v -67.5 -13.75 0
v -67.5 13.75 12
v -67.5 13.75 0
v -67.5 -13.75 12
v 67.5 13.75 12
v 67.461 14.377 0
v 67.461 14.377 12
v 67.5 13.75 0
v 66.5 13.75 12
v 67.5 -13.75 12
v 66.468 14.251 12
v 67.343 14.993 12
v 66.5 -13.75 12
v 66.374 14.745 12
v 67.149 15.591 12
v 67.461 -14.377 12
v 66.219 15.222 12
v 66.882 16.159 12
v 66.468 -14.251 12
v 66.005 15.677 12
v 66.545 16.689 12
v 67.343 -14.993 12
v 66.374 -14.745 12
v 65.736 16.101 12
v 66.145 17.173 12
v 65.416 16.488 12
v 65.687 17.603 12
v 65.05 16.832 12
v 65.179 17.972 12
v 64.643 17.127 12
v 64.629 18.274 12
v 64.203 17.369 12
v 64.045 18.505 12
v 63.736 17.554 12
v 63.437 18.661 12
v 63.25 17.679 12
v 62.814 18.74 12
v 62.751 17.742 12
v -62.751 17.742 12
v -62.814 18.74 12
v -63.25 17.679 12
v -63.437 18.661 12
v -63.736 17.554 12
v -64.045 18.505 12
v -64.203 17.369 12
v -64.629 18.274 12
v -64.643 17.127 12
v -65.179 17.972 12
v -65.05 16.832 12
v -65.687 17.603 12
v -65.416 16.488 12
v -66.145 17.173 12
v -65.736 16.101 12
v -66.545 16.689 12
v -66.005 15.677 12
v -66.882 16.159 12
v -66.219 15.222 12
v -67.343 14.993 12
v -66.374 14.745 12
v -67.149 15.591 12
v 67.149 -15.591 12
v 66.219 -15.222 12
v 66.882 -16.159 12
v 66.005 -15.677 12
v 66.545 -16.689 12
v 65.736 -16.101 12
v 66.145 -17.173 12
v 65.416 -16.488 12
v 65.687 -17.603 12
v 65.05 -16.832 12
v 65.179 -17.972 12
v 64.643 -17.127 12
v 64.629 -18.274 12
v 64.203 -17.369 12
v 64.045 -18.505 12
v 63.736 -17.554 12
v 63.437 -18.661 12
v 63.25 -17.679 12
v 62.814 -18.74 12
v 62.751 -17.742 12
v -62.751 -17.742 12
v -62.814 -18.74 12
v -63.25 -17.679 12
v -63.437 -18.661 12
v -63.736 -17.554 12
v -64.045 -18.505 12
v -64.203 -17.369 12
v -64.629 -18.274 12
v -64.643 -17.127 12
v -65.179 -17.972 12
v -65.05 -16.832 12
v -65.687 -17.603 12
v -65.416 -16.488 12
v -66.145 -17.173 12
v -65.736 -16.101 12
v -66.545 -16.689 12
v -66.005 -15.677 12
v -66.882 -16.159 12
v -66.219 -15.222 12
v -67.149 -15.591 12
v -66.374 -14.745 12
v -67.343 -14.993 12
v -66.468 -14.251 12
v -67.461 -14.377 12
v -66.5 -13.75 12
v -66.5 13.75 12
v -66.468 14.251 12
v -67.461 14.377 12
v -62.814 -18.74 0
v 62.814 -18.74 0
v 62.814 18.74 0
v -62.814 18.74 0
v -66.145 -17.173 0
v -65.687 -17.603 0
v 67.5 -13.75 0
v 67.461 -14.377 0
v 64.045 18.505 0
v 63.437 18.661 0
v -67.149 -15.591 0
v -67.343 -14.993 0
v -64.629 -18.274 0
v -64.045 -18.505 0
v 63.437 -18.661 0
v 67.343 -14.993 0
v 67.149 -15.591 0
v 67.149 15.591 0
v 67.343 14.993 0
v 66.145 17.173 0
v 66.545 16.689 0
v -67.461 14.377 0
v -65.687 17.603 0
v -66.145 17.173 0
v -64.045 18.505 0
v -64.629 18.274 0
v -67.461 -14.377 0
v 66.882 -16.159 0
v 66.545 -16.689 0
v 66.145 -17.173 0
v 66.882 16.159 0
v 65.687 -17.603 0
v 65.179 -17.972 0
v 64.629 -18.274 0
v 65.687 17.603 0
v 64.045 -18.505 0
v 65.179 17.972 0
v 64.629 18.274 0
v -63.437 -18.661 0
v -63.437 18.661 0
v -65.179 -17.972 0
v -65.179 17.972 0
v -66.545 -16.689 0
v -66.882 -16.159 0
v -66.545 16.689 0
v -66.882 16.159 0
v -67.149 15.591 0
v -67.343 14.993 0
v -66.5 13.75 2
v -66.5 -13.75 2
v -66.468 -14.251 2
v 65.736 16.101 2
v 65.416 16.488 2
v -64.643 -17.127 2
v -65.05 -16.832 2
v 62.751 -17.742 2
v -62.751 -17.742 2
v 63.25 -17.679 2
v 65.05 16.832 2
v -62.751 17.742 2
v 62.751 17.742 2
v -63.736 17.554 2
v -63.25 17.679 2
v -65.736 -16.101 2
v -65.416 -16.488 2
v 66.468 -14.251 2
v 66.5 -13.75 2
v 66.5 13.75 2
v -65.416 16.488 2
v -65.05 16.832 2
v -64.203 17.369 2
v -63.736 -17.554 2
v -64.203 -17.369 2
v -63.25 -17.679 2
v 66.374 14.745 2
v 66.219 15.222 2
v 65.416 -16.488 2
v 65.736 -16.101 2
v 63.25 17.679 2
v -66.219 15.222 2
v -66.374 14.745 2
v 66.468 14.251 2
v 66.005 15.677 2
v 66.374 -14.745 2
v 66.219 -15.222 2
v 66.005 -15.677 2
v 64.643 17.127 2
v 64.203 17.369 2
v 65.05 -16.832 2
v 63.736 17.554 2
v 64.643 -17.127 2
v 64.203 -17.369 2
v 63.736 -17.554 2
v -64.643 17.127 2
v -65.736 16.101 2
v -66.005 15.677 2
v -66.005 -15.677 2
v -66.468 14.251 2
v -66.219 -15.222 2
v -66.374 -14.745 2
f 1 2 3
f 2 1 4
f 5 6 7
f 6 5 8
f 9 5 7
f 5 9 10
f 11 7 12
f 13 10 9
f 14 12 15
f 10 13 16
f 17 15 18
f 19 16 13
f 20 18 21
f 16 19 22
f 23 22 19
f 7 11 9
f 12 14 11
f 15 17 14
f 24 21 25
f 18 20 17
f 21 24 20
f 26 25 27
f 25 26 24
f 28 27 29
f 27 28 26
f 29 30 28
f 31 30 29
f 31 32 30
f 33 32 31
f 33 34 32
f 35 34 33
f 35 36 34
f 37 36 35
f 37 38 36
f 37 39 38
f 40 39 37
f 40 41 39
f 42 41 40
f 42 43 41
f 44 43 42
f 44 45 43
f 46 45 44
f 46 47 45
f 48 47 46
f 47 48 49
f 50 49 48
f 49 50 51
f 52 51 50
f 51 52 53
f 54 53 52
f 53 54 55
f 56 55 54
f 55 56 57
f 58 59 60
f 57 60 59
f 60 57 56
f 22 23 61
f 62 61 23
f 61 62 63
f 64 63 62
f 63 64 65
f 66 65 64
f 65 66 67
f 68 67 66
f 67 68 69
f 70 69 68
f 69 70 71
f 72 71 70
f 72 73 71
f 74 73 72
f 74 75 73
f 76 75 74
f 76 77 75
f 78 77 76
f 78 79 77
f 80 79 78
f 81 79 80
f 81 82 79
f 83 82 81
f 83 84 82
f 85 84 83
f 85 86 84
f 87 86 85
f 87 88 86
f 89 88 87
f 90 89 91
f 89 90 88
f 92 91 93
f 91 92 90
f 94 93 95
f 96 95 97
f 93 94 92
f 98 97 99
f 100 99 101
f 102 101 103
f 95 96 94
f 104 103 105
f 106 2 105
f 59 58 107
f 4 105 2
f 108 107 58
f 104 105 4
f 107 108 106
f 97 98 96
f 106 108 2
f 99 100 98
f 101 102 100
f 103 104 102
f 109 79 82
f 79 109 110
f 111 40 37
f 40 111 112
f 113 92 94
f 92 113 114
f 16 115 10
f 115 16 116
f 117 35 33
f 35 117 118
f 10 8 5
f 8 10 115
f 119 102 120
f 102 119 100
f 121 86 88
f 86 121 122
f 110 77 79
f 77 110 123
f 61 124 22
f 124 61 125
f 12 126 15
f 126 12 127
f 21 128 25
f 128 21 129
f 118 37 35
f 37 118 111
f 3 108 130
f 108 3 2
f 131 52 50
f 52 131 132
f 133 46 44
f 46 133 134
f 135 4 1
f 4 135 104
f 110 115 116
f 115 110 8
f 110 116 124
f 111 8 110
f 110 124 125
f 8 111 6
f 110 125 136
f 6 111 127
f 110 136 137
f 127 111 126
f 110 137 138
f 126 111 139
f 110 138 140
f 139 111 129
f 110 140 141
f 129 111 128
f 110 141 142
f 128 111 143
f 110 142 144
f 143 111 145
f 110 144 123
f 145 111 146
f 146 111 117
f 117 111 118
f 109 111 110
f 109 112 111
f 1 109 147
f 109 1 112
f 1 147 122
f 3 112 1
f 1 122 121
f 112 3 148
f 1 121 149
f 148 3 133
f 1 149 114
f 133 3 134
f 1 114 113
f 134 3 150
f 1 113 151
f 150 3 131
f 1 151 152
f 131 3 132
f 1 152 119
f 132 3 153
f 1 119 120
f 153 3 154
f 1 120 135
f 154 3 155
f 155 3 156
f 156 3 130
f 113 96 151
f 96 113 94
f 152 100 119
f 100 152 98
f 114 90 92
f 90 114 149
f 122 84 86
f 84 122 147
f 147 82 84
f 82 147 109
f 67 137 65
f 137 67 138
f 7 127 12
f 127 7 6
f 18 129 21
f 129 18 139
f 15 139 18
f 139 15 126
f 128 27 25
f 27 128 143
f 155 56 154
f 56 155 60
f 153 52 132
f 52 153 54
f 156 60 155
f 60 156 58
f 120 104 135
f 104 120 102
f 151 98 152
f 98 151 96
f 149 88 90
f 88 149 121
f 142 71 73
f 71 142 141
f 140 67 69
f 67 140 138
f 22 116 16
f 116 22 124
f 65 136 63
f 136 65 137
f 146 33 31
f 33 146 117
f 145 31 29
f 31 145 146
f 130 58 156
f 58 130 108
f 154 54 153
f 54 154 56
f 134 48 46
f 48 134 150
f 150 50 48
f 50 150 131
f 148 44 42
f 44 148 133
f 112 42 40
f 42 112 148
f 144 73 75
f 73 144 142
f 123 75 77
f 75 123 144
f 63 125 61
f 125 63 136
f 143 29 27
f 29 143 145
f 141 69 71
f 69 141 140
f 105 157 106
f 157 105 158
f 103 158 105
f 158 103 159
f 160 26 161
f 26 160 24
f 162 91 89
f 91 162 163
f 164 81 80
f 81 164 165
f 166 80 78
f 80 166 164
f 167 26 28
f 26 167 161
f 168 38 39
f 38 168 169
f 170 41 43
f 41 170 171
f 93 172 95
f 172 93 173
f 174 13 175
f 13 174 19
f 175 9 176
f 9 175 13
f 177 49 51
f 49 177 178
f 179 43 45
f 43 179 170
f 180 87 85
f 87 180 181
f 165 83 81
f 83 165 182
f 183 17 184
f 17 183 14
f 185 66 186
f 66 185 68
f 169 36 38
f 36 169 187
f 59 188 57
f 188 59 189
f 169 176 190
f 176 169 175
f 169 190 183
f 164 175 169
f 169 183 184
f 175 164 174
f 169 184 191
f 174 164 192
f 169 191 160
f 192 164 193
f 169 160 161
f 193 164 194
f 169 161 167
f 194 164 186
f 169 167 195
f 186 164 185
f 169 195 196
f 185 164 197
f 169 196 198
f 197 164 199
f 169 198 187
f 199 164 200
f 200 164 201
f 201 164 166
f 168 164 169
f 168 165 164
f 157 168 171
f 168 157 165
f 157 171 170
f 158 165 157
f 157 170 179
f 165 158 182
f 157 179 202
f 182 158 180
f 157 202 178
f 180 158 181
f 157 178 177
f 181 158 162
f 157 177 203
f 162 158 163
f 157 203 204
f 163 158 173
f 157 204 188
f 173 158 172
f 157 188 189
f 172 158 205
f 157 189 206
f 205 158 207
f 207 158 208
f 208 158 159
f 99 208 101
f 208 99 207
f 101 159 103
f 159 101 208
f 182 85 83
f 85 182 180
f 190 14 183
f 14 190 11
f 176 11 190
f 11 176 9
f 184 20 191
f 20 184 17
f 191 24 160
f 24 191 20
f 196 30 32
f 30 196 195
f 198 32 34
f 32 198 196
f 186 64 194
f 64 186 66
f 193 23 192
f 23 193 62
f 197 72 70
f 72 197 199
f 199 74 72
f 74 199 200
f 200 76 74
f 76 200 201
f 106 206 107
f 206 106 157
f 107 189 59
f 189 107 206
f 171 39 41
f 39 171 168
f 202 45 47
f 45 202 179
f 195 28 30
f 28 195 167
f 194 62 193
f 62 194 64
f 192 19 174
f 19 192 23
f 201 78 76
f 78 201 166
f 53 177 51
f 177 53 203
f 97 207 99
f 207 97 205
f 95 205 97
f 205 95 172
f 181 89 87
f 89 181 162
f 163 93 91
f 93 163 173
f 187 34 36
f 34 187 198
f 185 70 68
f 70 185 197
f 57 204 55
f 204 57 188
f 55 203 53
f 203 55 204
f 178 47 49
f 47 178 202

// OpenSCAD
$fn = 50;


difference() {
	union() {
		hull() {
			translate(v = [-62.5000000000, 13.7500000000, 0]) {
				cylinder(h = 12, r = 5);
			}
			translate(v = [62.5000000000, 13.7500000000, 0]) {
				cylinder(h = 12, r = 5);
			}
			translate(v = [-62.5000000000, -13.7500000000, 0]) {
				cylinder(h = 12, r = 5);
			}
			translate(v = [62.5000000000, -13.7500000000, 0]) {
				cylinder(h = 12, r = 5);
			}
		}
	}
	union() {
		translate(v = [0, 0, 2]) {
			hull() {
				translate(v = [-62.5000000000, 13.7500000000, 0]) {
					cylinder(h = 10, r = 4);
				}
				translate(v = [62.5000000000, 13.7500000000, 0]) {
					cylinder(h = 10, r = 4);
				}
				translate(v = [-62.5000000000, -13.7500000000, 0]) {
					cylinder(h = 10, r = 4);
				}
				translate(v = [62.5000000000, -13.7500000000, 0]) {
					cylinder(h = 10, r = 4);
				}
			}
		}
	}
}
